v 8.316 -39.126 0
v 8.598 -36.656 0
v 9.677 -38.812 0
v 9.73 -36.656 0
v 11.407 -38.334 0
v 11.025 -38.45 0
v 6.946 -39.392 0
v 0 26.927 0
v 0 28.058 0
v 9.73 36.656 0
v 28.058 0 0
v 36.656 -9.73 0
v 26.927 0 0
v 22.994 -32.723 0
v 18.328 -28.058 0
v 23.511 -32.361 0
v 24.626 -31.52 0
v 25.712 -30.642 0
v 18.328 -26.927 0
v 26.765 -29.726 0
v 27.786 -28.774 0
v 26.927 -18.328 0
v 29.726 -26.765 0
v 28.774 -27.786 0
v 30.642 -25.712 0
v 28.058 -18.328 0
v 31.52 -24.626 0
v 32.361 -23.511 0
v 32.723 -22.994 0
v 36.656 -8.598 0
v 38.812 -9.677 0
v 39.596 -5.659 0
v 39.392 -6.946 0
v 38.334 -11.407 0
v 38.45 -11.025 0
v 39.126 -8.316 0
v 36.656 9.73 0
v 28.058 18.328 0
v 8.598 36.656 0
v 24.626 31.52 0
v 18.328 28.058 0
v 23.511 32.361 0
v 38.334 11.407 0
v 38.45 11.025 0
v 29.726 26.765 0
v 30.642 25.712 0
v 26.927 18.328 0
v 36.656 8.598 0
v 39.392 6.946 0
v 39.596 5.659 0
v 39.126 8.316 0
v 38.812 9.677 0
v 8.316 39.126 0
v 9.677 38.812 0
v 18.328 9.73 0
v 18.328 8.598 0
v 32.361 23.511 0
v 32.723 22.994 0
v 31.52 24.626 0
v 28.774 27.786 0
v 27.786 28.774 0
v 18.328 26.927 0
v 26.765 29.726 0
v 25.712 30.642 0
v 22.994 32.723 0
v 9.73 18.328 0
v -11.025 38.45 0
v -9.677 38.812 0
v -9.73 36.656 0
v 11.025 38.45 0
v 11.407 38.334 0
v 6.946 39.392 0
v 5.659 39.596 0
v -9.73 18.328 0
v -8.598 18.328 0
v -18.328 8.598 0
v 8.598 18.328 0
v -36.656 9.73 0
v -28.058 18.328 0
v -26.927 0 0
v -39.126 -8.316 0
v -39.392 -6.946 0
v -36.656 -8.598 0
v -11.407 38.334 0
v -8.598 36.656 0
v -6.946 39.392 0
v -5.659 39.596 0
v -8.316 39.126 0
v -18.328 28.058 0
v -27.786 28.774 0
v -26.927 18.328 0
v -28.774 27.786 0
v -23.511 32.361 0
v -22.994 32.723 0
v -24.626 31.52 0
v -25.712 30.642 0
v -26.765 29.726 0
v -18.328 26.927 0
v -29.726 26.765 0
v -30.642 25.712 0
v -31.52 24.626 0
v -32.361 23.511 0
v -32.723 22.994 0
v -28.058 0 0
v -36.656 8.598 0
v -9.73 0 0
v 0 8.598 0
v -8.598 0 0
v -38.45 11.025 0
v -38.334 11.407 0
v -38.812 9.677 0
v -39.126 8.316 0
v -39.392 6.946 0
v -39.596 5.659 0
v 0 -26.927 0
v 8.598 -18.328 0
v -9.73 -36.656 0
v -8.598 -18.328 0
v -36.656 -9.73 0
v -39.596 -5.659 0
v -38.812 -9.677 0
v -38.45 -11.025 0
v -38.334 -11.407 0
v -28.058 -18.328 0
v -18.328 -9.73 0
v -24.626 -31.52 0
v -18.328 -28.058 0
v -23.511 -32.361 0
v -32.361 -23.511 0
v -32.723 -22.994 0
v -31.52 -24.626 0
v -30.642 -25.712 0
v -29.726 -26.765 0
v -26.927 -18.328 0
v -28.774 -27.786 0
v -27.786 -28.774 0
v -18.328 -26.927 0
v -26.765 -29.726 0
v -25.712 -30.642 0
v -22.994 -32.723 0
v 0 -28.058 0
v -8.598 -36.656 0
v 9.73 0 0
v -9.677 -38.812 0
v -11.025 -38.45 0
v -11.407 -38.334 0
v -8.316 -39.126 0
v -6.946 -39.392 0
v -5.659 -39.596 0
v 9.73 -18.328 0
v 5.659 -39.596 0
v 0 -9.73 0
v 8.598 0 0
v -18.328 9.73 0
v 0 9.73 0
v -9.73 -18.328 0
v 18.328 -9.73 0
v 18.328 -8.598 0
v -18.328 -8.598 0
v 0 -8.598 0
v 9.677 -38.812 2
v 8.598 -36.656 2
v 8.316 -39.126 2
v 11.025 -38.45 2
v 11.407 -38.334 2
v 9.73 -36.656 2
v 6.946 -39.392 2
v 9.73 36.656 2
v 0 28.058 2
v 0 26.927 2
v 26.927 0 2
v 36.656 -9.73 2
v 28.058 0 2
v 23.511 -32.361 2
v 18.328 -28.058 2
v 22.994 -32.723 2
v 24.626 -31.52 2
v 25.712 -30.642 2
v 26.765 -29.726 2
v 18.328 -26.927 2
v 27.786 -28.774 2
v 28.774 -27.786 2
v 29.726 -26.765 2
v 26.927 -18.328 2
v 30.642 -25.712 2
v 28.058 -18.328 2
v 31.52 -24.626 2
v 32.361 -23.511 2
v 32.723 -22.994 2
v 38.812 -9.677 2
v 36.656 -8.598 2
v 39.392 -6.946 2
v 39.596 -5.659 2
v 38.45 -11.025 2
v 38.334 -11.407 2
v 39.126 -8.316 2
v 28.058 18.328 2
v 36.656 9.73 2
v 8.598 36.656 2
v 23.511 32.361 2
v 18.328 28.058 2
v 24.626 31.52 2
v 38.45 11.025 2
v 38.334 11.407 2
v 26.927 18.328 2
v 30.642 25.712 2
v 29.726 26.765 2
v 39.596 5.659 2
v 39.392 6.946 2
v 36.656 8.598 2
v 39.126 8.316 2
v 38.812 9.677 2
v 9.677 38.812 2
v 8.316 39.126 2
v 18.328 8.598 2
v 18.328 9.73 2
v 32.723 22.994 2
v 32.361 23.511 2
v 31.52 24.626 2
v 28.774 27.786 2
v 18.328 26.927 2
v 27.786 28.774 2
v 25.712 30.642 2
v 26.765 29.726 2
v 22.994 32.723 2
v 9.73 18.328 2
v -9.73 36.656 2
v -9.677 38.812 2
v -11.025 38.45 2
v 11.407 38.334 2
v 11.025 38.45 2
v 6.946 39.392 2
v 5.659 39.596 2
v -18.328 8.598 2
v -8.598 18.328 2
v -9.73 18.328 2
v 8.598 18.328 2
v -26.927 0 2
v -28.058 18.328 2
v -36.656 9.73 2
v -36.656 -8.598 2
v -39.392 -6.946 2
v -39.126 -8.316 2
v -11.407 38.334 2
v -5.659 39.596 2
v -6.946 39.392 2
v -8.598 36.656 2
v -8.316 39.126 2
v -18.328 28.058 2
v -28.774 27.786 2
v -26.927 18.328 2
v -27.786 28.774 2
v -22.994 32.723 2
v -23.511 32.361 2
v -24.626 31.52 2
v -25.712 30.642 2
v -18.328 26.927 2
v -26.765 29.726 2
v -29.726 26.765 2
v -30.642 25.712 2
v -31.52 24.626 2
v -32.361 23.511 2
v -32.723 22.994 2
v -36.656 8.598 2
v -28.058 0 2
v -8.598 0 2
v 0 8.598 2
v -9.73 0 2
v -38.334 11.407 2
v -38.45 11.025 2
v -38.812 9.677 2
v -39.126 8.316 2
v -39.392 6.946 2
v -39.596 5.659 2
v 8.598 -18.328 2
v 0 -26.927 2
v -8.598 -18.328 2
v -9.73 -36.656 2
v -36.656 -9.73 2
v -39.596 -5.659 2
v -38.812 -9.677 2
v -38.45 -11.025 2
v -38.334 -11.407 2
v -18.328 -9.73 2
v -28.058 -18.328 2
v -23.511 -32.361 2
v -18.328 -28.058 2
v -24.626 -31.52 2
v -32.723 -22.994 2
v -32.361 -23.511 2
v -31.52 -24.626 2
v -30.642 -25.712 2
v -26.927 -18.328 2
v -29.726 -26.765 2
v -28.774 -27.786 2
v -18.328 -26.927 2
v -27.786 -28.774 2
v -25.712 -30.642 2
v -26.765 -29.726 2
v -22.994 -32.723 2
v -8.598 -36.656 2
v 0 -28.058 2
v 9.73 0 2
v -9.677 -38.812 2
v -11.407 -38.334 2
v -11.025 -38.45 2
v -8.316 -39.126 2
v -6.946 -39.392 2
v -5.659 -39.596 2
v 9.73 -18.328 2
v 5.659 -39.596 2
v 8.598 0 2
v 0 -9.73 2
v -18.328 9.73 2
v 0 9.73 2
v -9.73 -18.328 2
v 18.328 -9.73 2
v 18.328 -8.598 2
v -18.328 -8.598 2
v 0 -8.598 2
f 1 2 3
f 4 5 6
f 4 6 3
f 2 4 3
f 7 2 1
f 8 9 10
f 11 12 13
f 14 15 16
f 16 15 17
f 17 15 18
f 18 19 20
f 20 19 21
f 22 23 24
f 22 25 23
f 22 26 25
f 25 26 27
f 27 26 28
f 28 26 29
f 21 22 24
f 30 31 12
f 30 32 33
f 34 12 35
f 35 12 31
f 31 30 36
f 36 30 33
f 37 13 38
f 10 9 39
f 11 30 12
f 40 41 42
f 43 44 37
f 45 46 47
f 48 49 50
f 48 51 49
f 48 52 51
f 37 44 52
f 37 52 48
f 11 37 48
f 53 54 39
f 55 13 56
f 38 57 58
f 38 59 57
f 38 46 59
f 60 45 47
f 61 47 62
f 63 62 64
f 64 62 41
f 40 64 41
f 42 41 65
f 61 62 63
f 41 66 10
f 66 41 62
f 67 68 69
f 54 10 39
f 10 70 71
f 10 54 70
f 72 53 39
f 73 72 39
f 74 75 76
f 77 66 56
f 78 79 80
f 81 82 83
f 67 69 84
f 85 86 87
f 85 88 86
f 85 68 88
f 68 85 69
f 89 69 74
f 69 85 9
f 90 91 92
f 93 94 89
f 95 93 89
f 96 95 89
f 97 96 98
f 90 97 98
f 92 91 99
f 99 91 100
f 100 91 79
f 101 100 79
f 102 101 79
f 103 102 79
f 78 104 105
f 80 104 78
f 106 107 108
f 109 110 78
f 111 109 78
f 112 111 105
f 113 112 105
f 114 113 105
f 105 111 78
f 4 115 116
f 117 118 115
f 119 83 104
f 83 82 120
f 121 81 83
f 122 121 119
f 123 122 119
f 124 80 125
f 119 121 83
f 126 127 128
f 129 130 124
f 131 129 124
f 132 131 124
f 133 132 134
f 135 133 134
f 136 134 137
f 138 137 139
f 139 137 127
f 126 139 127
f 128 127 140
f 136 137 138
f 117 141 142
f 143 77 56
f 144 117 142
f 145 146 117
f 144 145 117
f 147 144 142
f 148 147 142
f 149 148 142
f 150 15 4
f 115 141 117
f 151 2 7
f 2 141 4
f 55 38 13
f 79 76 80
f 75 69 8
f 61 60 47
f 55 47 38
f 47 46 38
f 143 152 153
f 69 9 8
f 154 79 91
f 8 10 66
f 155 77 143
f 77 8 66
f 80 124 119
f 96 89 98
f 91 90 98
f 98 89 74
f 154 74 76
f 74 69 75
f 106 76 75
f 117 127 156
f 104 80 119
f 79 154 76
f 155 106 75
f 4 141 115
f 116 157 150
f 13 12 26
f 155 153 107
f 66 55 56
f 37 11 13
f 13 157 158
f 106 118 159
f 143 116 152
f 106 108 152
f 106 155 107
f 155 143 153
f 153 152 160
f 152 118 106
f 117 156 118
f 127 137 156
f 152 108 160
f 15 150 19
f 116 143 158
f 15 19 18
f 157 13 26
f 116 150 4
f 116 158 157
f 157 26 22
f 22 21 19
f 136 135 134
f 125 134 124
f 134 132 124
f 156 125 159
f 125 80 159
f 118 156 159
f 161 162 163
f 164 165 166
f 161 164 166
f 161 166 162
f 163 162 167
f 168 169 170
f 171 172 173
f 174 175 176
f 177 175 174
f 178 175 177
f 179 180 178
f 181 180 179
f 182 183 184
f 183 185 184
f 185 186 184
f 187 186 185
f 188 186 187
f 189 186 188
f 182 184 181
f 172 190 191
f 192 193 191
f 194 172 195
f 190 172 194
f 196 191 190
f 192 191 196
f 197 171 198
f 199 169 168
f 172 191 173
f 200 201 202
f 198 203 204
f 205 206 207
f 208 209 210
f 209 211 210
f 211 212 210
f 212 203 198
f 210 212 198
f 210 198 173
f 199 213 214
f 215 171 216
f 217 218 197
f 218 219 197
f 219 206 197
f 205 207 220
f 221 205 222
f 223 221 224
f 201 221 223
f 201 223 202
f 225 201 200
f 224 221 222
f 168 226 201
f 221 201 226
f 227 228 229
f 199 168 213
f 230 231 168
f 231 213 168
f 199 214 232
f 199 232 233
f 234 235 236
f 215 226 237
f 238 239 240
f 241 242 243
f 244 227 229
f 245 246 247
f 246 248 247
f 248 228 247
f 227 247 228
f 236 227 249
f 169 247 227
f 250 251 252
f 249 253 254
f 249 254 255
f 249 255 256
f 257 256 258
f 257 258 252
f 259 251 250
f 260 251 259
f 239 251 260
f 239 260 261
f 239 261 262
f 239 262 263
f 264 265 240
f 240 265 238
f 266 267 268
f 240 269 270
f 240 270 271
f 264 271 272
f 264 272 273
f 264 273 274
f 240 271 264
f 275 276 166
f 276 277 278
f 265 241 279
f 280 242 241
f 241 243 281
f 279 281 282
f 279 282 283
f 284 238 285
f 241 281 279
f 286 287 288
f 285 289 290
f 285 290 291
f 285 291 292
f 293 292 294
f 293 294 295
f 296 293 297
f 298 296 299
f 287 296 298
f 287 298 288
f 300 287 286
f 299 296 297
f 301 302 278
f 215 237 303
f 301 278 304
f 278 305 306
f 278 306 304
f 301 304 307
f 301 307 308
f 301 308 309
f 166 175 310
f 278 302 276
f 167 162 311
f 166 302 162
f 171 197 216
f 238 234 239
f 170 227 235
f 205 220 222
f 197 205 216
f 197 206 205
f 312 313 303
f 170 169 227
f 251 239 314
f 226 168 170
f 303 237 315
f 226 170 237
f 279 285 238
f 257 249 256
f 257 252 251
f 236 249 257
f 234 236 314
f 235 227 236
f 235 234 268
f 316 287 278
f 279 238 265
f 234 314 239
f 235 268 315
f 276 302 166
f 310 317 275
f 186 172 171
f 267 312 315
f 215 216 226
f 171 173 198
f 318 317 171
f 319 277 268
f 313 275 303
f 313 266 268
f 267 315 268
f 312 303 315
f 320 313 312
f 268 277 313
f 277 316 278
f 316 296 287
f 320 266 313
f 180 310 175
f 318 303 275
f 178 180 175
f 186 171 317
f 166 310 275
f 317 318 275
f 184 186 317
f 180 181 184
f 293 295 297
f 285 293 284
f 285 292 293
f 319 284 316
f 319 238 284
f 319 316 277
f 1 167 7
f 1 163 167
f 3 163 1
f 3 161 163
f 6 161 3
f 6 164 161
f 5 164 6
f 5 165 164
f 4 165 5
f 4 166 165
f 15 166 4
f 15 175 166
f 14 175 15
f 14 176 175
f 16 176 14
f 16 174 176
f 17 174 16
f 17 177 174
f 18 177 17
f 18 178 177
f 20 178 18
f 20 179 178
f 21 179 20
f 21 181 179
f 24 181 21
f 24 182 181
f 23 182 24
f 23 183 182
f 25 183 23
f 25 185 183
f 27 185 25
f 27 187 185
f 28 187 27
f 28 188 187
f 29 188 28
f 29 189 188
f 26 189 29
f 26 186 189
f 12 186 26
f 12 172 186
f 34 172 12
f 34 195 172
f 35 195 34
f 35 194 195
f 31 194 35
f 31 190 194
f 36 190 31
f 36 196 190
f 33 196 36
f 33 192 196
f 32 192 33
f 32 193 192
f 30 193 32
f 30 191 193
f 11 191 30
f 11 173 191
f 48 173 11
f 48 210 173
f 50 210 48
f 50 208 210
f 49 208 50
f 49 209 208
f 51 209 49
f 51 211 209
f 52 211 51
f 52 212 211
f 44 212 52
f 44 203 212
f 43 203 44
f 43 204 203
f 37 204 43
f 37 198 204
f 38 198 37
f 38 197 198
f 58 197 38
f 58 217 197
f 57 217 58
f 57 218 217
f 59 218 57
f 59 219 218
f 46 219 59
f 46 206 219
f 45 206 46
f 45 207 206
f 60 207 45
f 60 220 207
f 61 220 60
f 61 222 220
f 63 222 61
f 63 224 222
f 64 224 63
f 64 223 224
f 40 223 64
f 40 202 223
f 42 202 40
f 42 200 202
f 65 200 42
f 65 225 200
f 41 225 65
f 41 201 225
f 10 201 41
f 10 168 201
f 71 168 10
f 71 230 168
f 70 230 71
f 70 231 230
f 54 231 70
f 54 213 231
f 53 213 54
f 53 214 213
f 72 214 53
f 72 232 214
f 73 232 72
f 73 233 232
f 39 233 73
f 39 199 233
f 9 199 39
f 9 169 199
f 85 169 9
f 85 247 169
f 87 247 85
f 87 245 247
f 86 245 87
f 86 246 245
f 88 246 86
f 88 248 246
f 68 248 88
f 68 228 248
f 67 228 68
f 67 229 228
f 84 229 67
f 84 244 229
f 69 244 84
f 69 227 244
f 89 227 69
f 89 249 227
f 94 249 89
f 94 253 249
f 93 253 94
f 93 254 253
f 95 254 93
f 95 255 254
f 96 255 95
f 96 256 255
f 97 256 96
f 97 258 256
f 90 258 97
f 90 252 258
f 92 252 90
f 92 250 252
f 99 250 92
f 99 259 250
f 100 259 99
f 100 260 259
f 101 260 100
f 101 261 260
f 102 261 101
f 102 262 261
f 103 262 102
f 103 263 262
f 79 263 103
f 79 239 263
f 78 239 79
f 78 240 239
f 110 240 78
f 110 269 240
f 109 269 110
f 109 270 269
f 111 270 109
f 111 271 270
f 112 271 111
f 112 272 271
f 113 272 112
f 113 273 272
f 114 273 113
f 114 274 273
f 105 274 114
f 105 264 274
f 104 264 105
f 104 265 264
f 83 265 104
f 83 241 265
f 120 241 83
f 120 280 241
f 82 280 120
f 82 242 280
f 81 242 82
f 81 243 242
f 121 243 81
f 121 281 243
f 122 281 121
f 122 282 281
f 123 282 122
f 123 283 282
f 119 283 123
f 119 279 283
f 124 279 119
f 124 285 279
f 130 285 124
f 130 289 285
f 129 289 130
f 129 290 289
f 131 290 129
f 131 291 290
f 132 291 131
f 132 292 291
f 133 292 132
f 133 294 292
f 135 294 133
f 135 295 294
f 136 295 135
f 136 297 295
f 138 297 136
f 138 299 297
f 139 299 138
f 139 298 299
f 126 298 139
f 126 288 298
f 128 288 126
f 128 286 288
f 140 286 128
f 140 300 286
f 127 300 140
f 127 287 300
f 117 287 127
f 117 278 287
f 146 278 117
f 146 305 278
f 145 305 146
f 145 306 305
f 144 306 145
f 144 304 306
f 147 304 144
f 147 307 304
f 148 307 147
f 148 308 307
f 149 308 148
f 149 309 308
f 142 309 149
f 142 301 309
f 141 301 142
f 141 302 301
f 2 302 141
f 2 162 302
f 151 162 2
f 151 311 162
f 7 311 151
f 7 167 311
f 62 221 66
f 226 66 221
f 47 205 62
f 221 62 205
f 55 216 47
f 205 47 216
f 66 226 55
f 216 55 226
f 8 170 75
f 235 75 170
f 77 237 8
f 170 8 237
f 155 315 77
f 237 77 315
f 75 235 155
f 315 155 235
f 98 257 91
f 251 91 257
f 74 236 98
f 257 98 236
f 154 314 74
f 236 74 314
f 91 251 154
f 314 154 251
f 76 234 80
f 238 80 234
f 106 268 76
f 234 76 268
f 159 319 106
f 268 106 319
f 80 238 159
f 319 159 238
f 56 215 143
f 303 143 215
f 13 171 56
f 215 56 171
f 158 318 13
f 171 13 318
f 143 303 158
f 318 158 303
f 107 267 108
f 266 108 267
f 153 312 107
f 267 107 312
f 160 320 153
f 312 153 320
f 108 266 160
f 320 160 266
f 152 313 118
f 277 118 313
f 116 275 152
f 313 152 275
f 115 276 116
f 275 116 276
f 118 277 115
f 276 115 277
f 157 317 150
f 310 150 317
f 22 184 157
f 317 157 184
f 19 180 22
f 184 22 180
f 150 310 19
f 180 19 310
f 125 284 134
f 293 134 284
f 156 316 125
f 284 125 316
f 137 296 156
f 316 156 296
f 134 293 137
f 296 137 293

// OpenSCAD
// file: bellum_text_traced.scad
// bellum_text_traced.scad
// "Bellum" lettering traced from the source logo image with
// OpenCV (4x cubic upscale, threshold, morphological cleanup,
// approxPolyDP 2px). Coordinates are centered, Y-up, and
// normalized to 100 units of total width.
// Regenerate with scratchpad/trace2_emit.py if retuning.

module bellum_traced_2d() {
    polygon(points=[[-49.89,10.25],[-49.89,9.49],[-49.35,8.94],[-46.95,8.83],[-45.64,7.74],[-45.09,6.11],[-45.42,-2.07],[-45.09,-10.25],[-46.07,-11.56],[-49.24,-11.89],[-49.56,-12.32],[-49.45,-13.30],[-30.59,-13.41],[-28.08,-12.87],[-26.23,-11.45],[-25.03,-9.27],[-24.48,-6.65],[-25.03,-4.80],[-26.01,-3.27],[-29.28,-0.55],[-27.10,2.84],[-27.32,5.78],[-27.97,6.98],[-29.28,8.29],[-31.13,9.38],[-35.50,10.36],[-40.62,-1.42],[-39.97,-0.98],[-35.06,-0.98],[-33.10,-1.31],[-31.68,-1.96],[-30.04,-3.60],[-29.06,-5.89],[-29.06,-7.96],[-29.83,-9.49],[-31.35,-10.91],[-33.86,-11.67],[-37.35,-11.89],[-39.97,-11.34],[-40.95,-10.25],[-41.38,8.40],[-40.84,8.83],[-38.99,9.05],[-35.93,8.83],[-33.32,7.85],[-31.57,6.32],[-30.92,4.91],[-31.24,2.40],[-32.55,0.98],[-33.86,0.33],[-39.31,0.00],[-40.29,0.44],[-40.95,1.53],[-41.49,6.22]], paths=[[0, 1, 2, 3, 4, 5, 6, 7, 8, 9, 10, 11, 12, 13, 14, 15, 16, 17, 18, 19, 20, 21, 22, 23, 24, 25], [26, 27, 28, 29, 30, 31, 32, 33, 34, 35, 36, 37, 38, 39], [40, 41, 42, 43, 44, 45, 46, 47, 48, 49, 50, 51, 52, 53]]);
    polygon(points=[[-21.76,1.53],[-23.28,-0.44],[-23.72,-1.85],[-23.72,-3.82],[-22.96,-6.22],[-21.54,-7.63],[-19.79,-8.40],[-15.43,-8.40],[-13.69,-8.07],[-12.05,-7.09],[-10.09,-5.13],[-10.31,-4.69],[-11.07,-4.58],[-13.36,-6.43],[-15.76,-7.20],[-18.27,-6.54],[-20.34,-4.47],[-20.77,-3.49],[-20.67,-2.62],[-20.01,-2.18],[-18.48,-2.07],[-12.70,-2.40],[-12.05,-1.96],[-12.27,0.00],[-13.90,1.96],[-16.30,2.94],[-19.68,2.62],[-20.34,-0.22],[-19.47,0.98],[-17.61,1.96],[-15.98,1.53],[-14.78,0.00],[-14.99,-0.76],[-15.98,-0.98],[-20.01,-0.98]], paths=[[0, 1, 2, 3, 4, 5, 6, 7, 8, 9, 10, 11, 12, 13, 14, 15, 16, 17, 18, 19, 20, 21, 22, 23, 24, 25, 26], [27, 28, 29, 30, 31, 32, 33, 34]]);
    polygon(points=[[-3.87,12.98],[-4.85,12.87],[-6.60,12.00],[-8.02,10.80],[-7.80,10.25],[-6.49,9.60],[-6.16,8.62],[-6.16,-3.93],[-6.49,-6.54],[-7.36,-7.20],[-8.67,-7.31],[-9.00,-7.74],[-8.89,-8.29],[-8.23,-8.62],[-1.04,-8.40],[-1.04,-7.85],[-1.47,-7.42],[-3.44,-6.98],[-3.98,-5.78],[-3.76,11.01],[-3.44,11.67],[-3.44,12.54]], paths=[[0, 1, 2, 3, 4, 5, 6, 7, 8, 9, 10, 11, 12, 13, 14, 15, 16, 17, 18, 19, 20, 21]]);
    polygon(points=[[5.07,13.52],[4.31,13.41],[0.82,11.56],[-0.16,10.47],[0.27,9.71],[1.47,10.03],[2.13,9.49],[2.34,7.85],[2.24,-5.45],[1.58,-7.20],[-0.05,-7.63],[0.05,-8.18],[0.93,-8.51],[7.25,-8.51],[7.58,-8.18],[6.92,-7.20],[6.05,-7.20],[5.07,-6.32],[5.18,-1.85],[4.85,-0.65],[5.18,0.33],[5.18,11.34],[5.73,12.54],[5.62,13.20]], paths=[[0, 1, 2, 3, 4, 5, 6, 7, 8, 9, 10, 11, 12, 13, 14, 15, 16, 17, 18, 19, 20, 21, 22, 23]]);
    polygon(points=[[9.00,1.64],[9.11,0.87],[10.09,0.76],[10.74,0.00],[11.07,-0.98],[11.07,-5.56],[11.61,-7.31],[12.60,-8.18],[13.36,-8.51],[16.19,-8.51],[18.92,-7.31],[19.47,-7.31],[20.12,-8.18],[20.67,-8.29],[23.83,-8.18],[24.48,-7.74],[24.37,-6.87],[23.17,-6.87],[22.52,-6.32],[22.19,-0.33],[22.63,0.55],[23.61,1.31],[23.72,2.07],[17.83,2.18],[17.72,1.64],[19.25,0.98],[19.68,0.22],[19.68,-4.58],[18.38,-6.32],[16.74,-6.87],[15.65,-6.87],[14.67,-6.43],[13.69,-4.80],[13.69,0.22],[14.67,2.07],[10.41,2.29]], paths=[[0, 1, 2, 3, 4, 5, 6, 7, 8, 9, 10, 11, 12, 13, 14, 15, 16, 17, 18, 19, 20, 21, 22, 23, 24, 25, 26, 27, 28, 29, 30, 31, 32, 33, 34, 35]]);
    polygon(points=[[27.21,1.85],[27.21,1.20],[28.95,0.11],[29.06,-6.22],[28.52,-7.20],[26.55,-7.52],[26.44,-8.29],[26.77,-8.62],[30.59,-8.83],[32.99,-8.62],[33.53,-8.29],[33.10,-7.31],[32.12,-7.20],[31.57,-6.65],[31.57,-0.87],[32.22,0.00],[34.41,0.98],[36.04,0.76],[36.70,0.11],[37.24,-1.53],[37.24,-6.00],[36.91,-6.76],[35.50,-7.74],[35.61,-8.18],[36.48,-8.51],[40.84,-8.51],[41.60,-8.07],[41.60,-7.74],[40.51,-7.20],[39.97,-6.43],[39.97,-1.96],[40.73,-0.55],[42.91,0.98],[44.66,0.65],[45.53,-0.33],[45.75,-1.09],[45.53,-6.43],[44.98,-7.20],[44.00,-7.52],[43.78,-8.07],[44.66,-8.51],[49.45,-8.62],[50.00,-8.18],[49.56,-7.42],[48.80,-7.42],[48.15,-6.76],[48.36,0.00],[47.93,1.31],[46.51,2.62],[43.68,2.94],[41.82,2.07],[40.29,0.87],[39.86,0.87],[38.66,2.51],[37.35,2.94],[34.95,2.51],[32.22,1.20],[31.46,1.42],[31.79,2.62],[31.24,3.05],[29.28,2.94]], paths=[[0, 1, 2, 3, 4, 5, 6, 7, 8, 9, 10, 11, 12, 13, 14, 15, 16, 17, 18, 19, 20, 21, 22, 23, 24, 25, 26, 27, 28, 29, 30, 31, 32, 33, 34, 35, 36, 37, 38, 39, 40, 41, 42, 43, 44, 45, 46, 47, 48, 49, 50, 51, 52, 53, 54, 55, 56, 57, 58, 59, 60]]);
}

bellum_traced_2d();
// file: bellum_badge_003.scad
// bellum_badge_003.scad
// v003: corrected layout, measured from the source photo. The design is
//   ONE continuous 45-degree checkerboard filling the whole circle with
//   thin white grout lines and a black tile at dead center - v001/v002's
//   "inner bordered diamond on a solid black ring" was a misreading of
//   the photo (the "border" was grout diagonals, the "black ring" was
//   glare on the glossy button). Proportions from the photo: tile pitch
//   ~0.162 D, grout ~0.008 D, text width ~0.86 D, centered.
// v002: "Bellum" lettering traced from the photo (bellum_text_traced.scad).
//
// Printable parts (print in the named color, glue together):
//   base_disc()          black - 3 mm circle; shows through the lattice
//                        holes as the black tiles
//   white_lattice()      white - 2 mm circle-wide lattice: white tiles +
//                        grout webs, one connected piece
//   black_tiles()        black - optional drop-ins for the full (unclipped)
//                        black tiles, if you want them flush
//   text_plate_black()   black - outline plate behind the letters
//   text_letters_white() white - "Bellum" letters (6 pieces), glue on plate
//
// Everything scales from badge_d; thicknesses and clearance are absolute.

$fa = 2;
$fs = 0.4;

// ---- scale ----
badge_d = 80;       // badge diameter: THE scale knob

// ---- thicknesses (absolute mm, independent of badge_d) ----
t_base = 3;         // black disc
t_top  = 2;         // white lattice and drop-in tiles (total badge = 5)
t_text = 1.2;       // each text layer (plate and letters)
clr    = 0.15;      // per-side XY clearance for the drop-in tiles

// ---- proportions (fractions of badge_d, measured from the photo) ----
pitch_frac = 0.162;                     // checker pitch (tile + grout)
grout_w   = max(0.008 * badge_d, 0.8);  // white web between tiles
text_w    = 0.86 * badge_d;             // width of "Bellum"
outline_w = max(0.015 * badge_d, 1.2);  // black outline around the letters

use <bellum_text_traced.scad>  // lettering traced from the logo photo

// ---- derived ----
R     = badge_d / 2;
pitch = pitch_frac * badge_d;
tile  = pitch - grout_w;                // black/white tile side
half_diag = tile / sqrt(2);             // rotated tile half-diagonal
range = ceil(R / pitch) + 1;

eps = 0.01;

// ---------------- 2D shapes ----------------

// black tile centers: (i+j) even puts a black tile at the exact center
module black_squares_2d(shrink = 0) {
    rotate(45)
        for (i = [-range : range], j = [-range : range])
            if ((i + j) % 2 == 0)
                translate([i * pitch, j * pitch])
                    square(tile - 2 * shrink, center = true);
}

// white tiles + grout webs across the whole circle, one connected piece
module lattice_2d() {
    difference() {
        circle(R);
        black_squares_2d();
    }
}

// traced lettering is normalized to 100 units wide, centered
module text_2d() {
    scale(text_w / 100) bellum_traced_2d();
}

// ---------------- printable parts (each flat on Z=0) ----------------

module base_disc() {
    linear_extrude(t_base) circle(R);
}

module white_lattice() {
    linear_extrude(t_top) lattice_2d();
}

// optional flush inlays for the black tiles that lie fully inside the rim
module black_tiles() {
    rotate(45)
        for (i = [-range : range], j = [-range : range])
            if ((i + j) % 2 == 0
                && norm([i, j]) * pitch + half_diag <= R - 1)
                translate([i * pitch, j * pitch])
                    linear_extrude(t_top)
                        square(tile - 2 * clr, center = true);
}

module text_plate_black() {
    linear_extrude(t_text) offset(r = outline_w) text_2d();
}

module text_letters_white() {
    linear_extrude(t_text) text_2d();
}

// ---------------- assembled preview ----------------

module assembly() {
    color([0.15, 0.15, 0.15]) base_disc();
    color("white") translate([0, 0, t_base]) white_lattice();
    color([0.15, 0.15, 0.15]) translate([0, 0, t_base + t_top])
        text_plate_black();
    color("white") translate([0, 0, t_base + t_top + t_text])
        text_letters_white();
}

assembly();
// main file
// bellum_badge_003_lattice.scad - print in WHITE
// Diamond border + white squares + grout webs, one piece. Glue onto the base.
use <bellum_badge_003.scad>
white_lattice();
